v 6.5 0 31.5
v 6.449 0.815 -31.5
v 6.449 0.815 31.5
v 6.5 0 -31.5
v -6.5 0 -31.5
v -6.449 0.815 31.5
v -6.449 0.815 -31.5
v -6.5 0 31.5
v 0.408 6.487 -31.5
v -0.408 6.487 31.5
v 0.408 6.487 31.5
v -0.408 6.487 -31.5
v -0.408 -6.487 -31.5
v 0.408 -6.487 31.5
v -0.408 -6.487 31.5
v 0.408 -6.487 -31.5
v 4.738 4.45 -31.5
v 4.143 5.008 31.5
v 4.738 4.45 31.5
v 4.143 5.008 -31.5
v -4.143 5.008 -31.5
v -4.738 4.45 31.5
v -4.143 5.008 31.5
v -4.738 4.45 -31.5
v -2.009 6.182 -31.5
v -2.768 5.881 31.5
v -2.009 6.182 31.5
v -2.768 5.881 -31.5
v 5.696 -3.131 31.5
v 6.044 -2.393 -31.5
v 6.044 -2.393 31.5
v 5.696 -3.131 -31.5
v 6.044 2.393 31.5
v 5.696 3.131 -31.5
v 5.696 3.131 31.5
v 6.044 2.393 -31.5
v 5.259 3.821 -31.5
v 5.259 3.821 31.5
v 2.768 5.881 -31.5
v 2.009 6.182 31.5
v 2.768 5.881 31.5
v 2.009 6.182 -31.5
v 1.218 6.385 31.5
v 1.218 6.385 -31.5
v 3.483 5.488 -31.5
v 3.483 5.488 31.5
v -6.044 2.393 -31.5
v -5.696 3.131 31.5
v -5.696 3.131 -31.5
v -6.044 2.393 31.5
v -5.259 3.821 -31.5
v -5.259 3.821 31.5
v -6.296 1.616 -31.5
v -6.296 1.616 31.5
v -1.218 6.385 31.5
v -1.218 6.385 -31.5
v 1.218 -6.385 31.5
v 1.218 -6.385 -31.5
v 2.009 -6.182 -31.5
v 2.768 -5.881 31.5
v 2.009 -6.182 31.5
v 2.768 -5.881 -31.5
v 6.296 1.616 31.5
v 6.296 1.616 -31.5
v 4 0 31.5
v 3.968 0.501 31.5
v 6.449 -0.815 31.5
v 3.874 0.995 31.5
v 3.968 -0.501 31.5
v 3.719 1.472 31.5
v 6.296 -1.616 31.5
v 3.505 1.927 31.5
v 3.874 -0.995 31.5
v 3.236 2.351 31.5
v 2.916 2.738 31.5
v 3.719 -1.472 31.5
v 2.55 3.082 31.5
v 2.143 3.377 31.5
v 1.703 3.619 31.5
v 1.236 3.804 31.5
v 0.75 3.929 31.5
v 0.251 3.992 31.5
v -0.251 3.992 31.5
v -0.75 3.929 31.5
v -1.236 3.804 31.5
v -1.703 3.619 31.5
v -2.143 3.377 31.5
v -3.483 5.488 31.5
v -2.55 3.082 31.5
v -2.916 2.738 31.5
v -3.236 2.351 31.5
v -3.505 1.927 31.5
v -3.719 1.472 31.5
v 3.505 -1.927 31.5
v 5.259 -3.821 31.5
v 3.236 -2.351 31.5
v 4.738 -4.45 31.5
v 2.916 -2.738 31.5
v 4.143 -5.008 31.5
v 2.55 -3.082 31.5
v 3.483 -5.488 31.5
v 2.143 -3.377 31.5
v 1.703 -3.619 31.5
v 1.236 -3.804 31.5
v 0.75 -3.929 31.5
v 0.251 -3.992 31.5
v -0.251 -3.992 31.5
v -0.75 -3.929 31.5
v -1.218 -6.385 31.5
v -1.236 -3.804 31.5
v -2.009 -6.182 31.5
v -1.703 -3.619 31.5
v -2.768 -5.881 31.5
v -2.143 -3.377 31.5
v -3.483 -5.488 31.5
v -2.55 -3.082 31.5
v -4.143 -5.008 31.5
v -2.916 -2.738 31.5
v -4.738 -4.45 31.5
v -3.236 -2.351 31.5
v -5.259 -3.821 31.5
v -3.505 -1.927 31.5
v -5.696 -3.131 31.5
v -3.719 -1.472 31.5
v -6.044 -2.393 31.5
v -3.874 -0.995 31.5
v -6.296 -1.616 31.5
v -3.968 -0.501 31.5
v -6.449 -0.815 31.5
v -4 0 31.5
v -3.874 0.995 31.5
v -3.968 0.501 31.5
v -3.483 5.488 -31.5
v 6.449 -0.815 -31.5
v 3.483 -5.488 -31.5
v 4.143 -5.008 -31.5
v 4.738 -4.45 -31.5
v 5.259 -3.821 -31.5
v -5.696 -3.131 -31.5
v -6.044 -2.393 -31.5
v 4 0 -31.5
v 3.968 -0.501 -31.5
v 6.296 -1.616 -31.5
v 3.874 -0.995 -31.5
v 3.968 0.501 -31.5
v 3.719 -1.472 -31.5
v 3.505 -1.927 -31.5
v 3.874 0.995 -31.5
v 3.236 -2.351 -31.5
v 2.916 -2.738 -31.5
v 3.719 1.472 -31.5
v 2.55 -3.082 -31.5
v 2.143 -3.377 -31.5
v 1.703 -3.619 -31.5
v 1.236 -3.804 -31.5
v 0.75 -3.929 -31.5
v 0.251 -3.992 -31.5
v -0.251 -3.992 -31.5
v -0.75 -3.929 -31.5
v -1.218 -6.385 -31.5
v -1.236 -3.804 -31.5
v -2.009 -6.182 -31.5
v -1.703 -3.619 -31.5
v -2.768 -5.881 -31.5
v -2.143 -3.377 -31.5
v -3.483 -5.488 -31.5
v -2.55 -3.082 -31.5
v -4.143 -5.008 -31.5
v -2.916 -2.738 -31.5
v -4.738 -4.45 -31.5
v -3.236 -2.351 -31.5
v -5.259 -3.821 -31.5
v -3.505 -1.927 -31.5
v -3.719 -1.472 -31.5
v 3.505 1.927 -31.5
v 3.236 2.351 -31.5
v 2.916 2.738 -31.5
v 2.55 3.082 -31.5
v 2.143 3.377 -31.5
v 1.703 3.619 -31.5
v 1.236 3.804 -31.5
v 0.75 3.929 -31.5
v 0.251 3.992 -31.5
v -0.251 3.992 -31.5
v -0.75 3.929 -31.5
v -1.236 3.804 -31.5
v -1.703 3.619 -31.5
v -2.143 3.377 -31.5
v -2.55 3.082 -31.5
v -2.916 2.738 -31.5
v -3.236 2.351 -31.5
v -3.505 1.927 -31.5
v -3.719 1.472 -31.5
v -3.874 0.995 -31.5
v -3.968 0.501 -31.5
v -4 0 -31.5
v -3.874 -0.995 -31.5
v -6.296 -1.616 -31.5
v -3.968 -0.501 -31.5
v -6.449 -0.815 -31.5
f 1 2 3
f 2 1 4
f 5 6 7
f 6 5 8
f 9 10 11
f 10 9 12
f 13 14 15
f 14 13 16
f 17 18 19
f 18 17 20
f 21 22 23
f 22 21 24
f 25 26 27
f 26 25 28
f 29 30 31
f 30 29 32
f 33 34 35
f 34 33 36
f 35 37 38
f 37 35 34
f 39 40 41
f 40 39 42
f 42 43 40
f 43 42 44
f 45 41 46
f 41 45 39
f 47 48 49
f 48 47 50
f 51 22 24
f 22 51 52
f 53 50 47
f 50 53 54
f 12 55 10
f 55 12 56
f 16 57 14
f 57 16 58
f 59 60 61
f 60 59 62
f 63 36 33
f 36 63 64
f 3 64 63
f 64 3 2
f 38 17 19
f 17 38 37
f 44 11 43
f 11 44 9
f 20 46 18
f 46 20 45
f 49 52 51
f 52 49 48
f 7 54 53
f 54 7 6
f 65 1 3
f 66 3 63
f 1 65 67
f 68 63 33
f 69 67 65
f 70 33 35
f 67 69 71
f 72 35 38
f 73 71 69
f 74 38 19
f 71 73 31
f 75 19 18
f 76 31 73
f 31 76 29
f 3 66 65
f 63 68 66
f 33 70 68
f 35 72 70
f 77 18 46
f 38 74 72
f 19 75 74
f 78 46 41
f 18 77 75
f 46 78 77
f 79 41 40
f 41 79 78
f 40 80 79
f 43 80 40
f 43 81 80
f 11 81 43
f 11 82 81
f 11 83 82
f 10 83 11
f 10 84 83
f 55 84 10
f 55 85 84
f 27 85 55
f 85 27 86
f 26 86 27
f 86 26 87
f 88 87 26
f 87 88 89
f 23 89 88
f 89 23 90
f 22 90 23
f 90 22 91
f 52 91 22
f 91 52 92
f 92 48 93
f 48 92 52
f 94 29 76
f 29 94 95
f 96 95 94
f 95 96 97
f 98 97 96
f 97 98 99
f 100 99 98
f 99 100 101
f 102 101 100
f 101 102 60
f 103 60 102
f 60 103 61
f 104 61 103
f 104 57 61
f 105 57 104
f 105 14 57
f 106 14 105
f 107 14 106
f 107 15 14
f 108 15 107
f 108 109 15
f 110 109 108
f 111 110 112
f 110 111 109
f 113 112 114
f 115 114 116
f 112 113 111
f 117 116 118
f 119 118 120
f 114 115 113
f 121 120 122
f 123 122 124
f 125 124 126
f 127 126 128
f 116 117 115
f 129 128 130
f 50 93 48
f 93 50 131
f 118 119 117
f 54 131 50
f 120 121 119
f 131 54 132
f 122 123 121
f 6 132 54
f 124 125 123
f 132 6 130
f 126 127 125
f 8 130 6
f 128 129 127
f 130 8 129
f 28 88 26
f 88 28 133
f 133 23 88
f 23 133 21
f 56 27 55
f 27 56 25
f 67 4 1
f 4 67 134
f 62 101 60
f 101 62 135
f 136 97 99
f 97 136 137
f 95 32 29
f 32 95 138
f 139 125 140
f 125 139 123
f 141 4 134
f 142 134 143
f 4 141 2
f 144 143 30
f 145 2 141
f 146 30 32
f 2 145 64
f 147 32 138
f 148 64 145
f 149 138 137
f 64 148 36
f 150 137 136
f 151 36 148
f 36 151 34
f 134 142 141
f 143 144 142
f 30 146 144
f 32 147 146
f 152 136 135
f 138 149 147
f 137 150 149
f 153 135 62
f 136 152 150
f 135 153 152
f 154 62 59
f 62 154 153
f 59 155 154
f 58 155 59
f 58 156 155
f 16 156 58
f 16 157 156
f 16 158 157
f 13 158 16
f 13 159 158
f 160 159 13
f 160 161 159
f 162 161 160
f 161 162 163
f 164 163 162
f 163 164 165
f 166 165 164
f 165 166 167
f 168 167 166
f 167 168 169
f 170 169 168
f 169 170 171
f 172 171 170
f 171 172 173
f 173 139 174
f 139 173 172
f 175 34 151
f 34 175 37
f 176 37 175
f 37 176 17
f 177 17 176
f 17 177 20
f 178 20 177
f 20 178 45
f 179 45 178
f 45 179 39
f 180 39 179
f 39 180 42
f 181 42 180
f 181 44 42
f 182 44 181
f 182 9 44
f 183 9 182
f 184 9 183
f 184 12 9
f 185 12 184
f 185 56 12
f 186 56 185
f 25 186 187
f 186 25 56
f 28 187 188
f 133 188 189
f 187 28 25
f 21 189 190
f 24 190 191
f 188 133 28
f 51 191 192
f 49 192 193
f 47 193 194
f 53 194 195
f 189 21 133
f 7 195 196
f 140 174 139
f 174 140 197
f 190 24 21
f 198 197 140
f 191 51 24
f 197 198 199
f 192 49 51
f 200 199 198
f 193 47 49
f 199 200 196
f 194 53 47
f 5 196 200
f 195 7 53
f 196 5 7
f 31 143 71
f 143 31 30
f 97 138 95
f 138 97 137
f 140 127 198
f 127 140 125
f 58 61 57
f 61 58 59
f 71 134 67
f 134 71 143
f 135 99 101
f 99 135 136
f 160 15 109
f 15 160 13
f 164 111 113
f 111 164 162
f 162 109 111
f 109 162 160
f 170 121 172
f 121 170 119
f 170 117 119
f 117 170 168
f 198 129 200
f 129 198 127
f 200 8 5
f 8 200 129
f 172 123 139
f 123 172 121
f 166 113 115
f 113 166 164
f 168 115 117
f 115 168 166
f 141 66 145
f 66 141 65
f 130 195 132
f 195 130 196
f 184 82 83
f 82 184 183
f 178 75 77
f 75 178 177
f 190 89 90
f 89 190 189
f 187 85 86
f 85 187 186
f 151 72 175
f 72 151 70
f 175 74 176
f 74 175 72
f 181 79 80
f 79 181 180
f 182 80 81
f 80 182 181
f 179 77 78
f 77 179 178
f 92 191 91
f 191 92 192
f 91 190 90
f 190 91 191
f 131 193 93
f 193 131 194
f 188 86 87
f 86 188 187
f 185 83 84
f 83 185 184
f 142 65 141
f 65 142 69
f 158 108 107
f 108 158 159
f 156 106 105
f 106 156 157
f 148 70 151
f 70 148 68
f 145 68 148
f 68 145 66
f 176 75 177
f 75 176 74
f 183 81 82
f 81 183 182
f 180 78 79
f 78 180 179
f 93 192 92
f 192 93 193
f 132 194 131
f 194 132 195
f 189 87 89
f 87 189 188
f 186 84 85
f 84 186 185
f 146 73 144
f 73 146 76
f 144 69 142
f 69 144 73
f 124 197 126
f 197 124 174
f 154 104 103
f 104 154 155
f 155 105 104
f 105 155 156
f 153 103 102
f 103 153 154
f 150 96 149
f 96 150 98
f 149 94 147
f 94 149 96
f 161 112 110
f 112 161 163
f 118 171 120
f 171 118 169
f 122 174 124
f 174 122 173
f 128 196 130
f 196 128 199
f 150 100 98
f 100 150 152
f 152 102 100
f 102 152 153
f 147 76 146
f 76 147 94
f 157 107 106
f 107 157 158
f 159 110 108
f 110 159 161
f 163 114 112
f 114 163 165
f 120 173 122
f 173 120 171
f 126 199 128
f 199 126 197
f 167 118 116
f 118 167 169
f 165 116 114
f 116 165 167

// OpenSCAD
$fn = 50;


difference() {
	union() {
		translate(v = [0, 0, -31.5000000000]) {
			cylinder(h = 63, r = 6.5000000000);
		}
	}
	union() {
		translate(v = [0, 0, -100.0000000000]) {
			cylinder(h = 200, r = 4.0000000000);
		}
	}
}
